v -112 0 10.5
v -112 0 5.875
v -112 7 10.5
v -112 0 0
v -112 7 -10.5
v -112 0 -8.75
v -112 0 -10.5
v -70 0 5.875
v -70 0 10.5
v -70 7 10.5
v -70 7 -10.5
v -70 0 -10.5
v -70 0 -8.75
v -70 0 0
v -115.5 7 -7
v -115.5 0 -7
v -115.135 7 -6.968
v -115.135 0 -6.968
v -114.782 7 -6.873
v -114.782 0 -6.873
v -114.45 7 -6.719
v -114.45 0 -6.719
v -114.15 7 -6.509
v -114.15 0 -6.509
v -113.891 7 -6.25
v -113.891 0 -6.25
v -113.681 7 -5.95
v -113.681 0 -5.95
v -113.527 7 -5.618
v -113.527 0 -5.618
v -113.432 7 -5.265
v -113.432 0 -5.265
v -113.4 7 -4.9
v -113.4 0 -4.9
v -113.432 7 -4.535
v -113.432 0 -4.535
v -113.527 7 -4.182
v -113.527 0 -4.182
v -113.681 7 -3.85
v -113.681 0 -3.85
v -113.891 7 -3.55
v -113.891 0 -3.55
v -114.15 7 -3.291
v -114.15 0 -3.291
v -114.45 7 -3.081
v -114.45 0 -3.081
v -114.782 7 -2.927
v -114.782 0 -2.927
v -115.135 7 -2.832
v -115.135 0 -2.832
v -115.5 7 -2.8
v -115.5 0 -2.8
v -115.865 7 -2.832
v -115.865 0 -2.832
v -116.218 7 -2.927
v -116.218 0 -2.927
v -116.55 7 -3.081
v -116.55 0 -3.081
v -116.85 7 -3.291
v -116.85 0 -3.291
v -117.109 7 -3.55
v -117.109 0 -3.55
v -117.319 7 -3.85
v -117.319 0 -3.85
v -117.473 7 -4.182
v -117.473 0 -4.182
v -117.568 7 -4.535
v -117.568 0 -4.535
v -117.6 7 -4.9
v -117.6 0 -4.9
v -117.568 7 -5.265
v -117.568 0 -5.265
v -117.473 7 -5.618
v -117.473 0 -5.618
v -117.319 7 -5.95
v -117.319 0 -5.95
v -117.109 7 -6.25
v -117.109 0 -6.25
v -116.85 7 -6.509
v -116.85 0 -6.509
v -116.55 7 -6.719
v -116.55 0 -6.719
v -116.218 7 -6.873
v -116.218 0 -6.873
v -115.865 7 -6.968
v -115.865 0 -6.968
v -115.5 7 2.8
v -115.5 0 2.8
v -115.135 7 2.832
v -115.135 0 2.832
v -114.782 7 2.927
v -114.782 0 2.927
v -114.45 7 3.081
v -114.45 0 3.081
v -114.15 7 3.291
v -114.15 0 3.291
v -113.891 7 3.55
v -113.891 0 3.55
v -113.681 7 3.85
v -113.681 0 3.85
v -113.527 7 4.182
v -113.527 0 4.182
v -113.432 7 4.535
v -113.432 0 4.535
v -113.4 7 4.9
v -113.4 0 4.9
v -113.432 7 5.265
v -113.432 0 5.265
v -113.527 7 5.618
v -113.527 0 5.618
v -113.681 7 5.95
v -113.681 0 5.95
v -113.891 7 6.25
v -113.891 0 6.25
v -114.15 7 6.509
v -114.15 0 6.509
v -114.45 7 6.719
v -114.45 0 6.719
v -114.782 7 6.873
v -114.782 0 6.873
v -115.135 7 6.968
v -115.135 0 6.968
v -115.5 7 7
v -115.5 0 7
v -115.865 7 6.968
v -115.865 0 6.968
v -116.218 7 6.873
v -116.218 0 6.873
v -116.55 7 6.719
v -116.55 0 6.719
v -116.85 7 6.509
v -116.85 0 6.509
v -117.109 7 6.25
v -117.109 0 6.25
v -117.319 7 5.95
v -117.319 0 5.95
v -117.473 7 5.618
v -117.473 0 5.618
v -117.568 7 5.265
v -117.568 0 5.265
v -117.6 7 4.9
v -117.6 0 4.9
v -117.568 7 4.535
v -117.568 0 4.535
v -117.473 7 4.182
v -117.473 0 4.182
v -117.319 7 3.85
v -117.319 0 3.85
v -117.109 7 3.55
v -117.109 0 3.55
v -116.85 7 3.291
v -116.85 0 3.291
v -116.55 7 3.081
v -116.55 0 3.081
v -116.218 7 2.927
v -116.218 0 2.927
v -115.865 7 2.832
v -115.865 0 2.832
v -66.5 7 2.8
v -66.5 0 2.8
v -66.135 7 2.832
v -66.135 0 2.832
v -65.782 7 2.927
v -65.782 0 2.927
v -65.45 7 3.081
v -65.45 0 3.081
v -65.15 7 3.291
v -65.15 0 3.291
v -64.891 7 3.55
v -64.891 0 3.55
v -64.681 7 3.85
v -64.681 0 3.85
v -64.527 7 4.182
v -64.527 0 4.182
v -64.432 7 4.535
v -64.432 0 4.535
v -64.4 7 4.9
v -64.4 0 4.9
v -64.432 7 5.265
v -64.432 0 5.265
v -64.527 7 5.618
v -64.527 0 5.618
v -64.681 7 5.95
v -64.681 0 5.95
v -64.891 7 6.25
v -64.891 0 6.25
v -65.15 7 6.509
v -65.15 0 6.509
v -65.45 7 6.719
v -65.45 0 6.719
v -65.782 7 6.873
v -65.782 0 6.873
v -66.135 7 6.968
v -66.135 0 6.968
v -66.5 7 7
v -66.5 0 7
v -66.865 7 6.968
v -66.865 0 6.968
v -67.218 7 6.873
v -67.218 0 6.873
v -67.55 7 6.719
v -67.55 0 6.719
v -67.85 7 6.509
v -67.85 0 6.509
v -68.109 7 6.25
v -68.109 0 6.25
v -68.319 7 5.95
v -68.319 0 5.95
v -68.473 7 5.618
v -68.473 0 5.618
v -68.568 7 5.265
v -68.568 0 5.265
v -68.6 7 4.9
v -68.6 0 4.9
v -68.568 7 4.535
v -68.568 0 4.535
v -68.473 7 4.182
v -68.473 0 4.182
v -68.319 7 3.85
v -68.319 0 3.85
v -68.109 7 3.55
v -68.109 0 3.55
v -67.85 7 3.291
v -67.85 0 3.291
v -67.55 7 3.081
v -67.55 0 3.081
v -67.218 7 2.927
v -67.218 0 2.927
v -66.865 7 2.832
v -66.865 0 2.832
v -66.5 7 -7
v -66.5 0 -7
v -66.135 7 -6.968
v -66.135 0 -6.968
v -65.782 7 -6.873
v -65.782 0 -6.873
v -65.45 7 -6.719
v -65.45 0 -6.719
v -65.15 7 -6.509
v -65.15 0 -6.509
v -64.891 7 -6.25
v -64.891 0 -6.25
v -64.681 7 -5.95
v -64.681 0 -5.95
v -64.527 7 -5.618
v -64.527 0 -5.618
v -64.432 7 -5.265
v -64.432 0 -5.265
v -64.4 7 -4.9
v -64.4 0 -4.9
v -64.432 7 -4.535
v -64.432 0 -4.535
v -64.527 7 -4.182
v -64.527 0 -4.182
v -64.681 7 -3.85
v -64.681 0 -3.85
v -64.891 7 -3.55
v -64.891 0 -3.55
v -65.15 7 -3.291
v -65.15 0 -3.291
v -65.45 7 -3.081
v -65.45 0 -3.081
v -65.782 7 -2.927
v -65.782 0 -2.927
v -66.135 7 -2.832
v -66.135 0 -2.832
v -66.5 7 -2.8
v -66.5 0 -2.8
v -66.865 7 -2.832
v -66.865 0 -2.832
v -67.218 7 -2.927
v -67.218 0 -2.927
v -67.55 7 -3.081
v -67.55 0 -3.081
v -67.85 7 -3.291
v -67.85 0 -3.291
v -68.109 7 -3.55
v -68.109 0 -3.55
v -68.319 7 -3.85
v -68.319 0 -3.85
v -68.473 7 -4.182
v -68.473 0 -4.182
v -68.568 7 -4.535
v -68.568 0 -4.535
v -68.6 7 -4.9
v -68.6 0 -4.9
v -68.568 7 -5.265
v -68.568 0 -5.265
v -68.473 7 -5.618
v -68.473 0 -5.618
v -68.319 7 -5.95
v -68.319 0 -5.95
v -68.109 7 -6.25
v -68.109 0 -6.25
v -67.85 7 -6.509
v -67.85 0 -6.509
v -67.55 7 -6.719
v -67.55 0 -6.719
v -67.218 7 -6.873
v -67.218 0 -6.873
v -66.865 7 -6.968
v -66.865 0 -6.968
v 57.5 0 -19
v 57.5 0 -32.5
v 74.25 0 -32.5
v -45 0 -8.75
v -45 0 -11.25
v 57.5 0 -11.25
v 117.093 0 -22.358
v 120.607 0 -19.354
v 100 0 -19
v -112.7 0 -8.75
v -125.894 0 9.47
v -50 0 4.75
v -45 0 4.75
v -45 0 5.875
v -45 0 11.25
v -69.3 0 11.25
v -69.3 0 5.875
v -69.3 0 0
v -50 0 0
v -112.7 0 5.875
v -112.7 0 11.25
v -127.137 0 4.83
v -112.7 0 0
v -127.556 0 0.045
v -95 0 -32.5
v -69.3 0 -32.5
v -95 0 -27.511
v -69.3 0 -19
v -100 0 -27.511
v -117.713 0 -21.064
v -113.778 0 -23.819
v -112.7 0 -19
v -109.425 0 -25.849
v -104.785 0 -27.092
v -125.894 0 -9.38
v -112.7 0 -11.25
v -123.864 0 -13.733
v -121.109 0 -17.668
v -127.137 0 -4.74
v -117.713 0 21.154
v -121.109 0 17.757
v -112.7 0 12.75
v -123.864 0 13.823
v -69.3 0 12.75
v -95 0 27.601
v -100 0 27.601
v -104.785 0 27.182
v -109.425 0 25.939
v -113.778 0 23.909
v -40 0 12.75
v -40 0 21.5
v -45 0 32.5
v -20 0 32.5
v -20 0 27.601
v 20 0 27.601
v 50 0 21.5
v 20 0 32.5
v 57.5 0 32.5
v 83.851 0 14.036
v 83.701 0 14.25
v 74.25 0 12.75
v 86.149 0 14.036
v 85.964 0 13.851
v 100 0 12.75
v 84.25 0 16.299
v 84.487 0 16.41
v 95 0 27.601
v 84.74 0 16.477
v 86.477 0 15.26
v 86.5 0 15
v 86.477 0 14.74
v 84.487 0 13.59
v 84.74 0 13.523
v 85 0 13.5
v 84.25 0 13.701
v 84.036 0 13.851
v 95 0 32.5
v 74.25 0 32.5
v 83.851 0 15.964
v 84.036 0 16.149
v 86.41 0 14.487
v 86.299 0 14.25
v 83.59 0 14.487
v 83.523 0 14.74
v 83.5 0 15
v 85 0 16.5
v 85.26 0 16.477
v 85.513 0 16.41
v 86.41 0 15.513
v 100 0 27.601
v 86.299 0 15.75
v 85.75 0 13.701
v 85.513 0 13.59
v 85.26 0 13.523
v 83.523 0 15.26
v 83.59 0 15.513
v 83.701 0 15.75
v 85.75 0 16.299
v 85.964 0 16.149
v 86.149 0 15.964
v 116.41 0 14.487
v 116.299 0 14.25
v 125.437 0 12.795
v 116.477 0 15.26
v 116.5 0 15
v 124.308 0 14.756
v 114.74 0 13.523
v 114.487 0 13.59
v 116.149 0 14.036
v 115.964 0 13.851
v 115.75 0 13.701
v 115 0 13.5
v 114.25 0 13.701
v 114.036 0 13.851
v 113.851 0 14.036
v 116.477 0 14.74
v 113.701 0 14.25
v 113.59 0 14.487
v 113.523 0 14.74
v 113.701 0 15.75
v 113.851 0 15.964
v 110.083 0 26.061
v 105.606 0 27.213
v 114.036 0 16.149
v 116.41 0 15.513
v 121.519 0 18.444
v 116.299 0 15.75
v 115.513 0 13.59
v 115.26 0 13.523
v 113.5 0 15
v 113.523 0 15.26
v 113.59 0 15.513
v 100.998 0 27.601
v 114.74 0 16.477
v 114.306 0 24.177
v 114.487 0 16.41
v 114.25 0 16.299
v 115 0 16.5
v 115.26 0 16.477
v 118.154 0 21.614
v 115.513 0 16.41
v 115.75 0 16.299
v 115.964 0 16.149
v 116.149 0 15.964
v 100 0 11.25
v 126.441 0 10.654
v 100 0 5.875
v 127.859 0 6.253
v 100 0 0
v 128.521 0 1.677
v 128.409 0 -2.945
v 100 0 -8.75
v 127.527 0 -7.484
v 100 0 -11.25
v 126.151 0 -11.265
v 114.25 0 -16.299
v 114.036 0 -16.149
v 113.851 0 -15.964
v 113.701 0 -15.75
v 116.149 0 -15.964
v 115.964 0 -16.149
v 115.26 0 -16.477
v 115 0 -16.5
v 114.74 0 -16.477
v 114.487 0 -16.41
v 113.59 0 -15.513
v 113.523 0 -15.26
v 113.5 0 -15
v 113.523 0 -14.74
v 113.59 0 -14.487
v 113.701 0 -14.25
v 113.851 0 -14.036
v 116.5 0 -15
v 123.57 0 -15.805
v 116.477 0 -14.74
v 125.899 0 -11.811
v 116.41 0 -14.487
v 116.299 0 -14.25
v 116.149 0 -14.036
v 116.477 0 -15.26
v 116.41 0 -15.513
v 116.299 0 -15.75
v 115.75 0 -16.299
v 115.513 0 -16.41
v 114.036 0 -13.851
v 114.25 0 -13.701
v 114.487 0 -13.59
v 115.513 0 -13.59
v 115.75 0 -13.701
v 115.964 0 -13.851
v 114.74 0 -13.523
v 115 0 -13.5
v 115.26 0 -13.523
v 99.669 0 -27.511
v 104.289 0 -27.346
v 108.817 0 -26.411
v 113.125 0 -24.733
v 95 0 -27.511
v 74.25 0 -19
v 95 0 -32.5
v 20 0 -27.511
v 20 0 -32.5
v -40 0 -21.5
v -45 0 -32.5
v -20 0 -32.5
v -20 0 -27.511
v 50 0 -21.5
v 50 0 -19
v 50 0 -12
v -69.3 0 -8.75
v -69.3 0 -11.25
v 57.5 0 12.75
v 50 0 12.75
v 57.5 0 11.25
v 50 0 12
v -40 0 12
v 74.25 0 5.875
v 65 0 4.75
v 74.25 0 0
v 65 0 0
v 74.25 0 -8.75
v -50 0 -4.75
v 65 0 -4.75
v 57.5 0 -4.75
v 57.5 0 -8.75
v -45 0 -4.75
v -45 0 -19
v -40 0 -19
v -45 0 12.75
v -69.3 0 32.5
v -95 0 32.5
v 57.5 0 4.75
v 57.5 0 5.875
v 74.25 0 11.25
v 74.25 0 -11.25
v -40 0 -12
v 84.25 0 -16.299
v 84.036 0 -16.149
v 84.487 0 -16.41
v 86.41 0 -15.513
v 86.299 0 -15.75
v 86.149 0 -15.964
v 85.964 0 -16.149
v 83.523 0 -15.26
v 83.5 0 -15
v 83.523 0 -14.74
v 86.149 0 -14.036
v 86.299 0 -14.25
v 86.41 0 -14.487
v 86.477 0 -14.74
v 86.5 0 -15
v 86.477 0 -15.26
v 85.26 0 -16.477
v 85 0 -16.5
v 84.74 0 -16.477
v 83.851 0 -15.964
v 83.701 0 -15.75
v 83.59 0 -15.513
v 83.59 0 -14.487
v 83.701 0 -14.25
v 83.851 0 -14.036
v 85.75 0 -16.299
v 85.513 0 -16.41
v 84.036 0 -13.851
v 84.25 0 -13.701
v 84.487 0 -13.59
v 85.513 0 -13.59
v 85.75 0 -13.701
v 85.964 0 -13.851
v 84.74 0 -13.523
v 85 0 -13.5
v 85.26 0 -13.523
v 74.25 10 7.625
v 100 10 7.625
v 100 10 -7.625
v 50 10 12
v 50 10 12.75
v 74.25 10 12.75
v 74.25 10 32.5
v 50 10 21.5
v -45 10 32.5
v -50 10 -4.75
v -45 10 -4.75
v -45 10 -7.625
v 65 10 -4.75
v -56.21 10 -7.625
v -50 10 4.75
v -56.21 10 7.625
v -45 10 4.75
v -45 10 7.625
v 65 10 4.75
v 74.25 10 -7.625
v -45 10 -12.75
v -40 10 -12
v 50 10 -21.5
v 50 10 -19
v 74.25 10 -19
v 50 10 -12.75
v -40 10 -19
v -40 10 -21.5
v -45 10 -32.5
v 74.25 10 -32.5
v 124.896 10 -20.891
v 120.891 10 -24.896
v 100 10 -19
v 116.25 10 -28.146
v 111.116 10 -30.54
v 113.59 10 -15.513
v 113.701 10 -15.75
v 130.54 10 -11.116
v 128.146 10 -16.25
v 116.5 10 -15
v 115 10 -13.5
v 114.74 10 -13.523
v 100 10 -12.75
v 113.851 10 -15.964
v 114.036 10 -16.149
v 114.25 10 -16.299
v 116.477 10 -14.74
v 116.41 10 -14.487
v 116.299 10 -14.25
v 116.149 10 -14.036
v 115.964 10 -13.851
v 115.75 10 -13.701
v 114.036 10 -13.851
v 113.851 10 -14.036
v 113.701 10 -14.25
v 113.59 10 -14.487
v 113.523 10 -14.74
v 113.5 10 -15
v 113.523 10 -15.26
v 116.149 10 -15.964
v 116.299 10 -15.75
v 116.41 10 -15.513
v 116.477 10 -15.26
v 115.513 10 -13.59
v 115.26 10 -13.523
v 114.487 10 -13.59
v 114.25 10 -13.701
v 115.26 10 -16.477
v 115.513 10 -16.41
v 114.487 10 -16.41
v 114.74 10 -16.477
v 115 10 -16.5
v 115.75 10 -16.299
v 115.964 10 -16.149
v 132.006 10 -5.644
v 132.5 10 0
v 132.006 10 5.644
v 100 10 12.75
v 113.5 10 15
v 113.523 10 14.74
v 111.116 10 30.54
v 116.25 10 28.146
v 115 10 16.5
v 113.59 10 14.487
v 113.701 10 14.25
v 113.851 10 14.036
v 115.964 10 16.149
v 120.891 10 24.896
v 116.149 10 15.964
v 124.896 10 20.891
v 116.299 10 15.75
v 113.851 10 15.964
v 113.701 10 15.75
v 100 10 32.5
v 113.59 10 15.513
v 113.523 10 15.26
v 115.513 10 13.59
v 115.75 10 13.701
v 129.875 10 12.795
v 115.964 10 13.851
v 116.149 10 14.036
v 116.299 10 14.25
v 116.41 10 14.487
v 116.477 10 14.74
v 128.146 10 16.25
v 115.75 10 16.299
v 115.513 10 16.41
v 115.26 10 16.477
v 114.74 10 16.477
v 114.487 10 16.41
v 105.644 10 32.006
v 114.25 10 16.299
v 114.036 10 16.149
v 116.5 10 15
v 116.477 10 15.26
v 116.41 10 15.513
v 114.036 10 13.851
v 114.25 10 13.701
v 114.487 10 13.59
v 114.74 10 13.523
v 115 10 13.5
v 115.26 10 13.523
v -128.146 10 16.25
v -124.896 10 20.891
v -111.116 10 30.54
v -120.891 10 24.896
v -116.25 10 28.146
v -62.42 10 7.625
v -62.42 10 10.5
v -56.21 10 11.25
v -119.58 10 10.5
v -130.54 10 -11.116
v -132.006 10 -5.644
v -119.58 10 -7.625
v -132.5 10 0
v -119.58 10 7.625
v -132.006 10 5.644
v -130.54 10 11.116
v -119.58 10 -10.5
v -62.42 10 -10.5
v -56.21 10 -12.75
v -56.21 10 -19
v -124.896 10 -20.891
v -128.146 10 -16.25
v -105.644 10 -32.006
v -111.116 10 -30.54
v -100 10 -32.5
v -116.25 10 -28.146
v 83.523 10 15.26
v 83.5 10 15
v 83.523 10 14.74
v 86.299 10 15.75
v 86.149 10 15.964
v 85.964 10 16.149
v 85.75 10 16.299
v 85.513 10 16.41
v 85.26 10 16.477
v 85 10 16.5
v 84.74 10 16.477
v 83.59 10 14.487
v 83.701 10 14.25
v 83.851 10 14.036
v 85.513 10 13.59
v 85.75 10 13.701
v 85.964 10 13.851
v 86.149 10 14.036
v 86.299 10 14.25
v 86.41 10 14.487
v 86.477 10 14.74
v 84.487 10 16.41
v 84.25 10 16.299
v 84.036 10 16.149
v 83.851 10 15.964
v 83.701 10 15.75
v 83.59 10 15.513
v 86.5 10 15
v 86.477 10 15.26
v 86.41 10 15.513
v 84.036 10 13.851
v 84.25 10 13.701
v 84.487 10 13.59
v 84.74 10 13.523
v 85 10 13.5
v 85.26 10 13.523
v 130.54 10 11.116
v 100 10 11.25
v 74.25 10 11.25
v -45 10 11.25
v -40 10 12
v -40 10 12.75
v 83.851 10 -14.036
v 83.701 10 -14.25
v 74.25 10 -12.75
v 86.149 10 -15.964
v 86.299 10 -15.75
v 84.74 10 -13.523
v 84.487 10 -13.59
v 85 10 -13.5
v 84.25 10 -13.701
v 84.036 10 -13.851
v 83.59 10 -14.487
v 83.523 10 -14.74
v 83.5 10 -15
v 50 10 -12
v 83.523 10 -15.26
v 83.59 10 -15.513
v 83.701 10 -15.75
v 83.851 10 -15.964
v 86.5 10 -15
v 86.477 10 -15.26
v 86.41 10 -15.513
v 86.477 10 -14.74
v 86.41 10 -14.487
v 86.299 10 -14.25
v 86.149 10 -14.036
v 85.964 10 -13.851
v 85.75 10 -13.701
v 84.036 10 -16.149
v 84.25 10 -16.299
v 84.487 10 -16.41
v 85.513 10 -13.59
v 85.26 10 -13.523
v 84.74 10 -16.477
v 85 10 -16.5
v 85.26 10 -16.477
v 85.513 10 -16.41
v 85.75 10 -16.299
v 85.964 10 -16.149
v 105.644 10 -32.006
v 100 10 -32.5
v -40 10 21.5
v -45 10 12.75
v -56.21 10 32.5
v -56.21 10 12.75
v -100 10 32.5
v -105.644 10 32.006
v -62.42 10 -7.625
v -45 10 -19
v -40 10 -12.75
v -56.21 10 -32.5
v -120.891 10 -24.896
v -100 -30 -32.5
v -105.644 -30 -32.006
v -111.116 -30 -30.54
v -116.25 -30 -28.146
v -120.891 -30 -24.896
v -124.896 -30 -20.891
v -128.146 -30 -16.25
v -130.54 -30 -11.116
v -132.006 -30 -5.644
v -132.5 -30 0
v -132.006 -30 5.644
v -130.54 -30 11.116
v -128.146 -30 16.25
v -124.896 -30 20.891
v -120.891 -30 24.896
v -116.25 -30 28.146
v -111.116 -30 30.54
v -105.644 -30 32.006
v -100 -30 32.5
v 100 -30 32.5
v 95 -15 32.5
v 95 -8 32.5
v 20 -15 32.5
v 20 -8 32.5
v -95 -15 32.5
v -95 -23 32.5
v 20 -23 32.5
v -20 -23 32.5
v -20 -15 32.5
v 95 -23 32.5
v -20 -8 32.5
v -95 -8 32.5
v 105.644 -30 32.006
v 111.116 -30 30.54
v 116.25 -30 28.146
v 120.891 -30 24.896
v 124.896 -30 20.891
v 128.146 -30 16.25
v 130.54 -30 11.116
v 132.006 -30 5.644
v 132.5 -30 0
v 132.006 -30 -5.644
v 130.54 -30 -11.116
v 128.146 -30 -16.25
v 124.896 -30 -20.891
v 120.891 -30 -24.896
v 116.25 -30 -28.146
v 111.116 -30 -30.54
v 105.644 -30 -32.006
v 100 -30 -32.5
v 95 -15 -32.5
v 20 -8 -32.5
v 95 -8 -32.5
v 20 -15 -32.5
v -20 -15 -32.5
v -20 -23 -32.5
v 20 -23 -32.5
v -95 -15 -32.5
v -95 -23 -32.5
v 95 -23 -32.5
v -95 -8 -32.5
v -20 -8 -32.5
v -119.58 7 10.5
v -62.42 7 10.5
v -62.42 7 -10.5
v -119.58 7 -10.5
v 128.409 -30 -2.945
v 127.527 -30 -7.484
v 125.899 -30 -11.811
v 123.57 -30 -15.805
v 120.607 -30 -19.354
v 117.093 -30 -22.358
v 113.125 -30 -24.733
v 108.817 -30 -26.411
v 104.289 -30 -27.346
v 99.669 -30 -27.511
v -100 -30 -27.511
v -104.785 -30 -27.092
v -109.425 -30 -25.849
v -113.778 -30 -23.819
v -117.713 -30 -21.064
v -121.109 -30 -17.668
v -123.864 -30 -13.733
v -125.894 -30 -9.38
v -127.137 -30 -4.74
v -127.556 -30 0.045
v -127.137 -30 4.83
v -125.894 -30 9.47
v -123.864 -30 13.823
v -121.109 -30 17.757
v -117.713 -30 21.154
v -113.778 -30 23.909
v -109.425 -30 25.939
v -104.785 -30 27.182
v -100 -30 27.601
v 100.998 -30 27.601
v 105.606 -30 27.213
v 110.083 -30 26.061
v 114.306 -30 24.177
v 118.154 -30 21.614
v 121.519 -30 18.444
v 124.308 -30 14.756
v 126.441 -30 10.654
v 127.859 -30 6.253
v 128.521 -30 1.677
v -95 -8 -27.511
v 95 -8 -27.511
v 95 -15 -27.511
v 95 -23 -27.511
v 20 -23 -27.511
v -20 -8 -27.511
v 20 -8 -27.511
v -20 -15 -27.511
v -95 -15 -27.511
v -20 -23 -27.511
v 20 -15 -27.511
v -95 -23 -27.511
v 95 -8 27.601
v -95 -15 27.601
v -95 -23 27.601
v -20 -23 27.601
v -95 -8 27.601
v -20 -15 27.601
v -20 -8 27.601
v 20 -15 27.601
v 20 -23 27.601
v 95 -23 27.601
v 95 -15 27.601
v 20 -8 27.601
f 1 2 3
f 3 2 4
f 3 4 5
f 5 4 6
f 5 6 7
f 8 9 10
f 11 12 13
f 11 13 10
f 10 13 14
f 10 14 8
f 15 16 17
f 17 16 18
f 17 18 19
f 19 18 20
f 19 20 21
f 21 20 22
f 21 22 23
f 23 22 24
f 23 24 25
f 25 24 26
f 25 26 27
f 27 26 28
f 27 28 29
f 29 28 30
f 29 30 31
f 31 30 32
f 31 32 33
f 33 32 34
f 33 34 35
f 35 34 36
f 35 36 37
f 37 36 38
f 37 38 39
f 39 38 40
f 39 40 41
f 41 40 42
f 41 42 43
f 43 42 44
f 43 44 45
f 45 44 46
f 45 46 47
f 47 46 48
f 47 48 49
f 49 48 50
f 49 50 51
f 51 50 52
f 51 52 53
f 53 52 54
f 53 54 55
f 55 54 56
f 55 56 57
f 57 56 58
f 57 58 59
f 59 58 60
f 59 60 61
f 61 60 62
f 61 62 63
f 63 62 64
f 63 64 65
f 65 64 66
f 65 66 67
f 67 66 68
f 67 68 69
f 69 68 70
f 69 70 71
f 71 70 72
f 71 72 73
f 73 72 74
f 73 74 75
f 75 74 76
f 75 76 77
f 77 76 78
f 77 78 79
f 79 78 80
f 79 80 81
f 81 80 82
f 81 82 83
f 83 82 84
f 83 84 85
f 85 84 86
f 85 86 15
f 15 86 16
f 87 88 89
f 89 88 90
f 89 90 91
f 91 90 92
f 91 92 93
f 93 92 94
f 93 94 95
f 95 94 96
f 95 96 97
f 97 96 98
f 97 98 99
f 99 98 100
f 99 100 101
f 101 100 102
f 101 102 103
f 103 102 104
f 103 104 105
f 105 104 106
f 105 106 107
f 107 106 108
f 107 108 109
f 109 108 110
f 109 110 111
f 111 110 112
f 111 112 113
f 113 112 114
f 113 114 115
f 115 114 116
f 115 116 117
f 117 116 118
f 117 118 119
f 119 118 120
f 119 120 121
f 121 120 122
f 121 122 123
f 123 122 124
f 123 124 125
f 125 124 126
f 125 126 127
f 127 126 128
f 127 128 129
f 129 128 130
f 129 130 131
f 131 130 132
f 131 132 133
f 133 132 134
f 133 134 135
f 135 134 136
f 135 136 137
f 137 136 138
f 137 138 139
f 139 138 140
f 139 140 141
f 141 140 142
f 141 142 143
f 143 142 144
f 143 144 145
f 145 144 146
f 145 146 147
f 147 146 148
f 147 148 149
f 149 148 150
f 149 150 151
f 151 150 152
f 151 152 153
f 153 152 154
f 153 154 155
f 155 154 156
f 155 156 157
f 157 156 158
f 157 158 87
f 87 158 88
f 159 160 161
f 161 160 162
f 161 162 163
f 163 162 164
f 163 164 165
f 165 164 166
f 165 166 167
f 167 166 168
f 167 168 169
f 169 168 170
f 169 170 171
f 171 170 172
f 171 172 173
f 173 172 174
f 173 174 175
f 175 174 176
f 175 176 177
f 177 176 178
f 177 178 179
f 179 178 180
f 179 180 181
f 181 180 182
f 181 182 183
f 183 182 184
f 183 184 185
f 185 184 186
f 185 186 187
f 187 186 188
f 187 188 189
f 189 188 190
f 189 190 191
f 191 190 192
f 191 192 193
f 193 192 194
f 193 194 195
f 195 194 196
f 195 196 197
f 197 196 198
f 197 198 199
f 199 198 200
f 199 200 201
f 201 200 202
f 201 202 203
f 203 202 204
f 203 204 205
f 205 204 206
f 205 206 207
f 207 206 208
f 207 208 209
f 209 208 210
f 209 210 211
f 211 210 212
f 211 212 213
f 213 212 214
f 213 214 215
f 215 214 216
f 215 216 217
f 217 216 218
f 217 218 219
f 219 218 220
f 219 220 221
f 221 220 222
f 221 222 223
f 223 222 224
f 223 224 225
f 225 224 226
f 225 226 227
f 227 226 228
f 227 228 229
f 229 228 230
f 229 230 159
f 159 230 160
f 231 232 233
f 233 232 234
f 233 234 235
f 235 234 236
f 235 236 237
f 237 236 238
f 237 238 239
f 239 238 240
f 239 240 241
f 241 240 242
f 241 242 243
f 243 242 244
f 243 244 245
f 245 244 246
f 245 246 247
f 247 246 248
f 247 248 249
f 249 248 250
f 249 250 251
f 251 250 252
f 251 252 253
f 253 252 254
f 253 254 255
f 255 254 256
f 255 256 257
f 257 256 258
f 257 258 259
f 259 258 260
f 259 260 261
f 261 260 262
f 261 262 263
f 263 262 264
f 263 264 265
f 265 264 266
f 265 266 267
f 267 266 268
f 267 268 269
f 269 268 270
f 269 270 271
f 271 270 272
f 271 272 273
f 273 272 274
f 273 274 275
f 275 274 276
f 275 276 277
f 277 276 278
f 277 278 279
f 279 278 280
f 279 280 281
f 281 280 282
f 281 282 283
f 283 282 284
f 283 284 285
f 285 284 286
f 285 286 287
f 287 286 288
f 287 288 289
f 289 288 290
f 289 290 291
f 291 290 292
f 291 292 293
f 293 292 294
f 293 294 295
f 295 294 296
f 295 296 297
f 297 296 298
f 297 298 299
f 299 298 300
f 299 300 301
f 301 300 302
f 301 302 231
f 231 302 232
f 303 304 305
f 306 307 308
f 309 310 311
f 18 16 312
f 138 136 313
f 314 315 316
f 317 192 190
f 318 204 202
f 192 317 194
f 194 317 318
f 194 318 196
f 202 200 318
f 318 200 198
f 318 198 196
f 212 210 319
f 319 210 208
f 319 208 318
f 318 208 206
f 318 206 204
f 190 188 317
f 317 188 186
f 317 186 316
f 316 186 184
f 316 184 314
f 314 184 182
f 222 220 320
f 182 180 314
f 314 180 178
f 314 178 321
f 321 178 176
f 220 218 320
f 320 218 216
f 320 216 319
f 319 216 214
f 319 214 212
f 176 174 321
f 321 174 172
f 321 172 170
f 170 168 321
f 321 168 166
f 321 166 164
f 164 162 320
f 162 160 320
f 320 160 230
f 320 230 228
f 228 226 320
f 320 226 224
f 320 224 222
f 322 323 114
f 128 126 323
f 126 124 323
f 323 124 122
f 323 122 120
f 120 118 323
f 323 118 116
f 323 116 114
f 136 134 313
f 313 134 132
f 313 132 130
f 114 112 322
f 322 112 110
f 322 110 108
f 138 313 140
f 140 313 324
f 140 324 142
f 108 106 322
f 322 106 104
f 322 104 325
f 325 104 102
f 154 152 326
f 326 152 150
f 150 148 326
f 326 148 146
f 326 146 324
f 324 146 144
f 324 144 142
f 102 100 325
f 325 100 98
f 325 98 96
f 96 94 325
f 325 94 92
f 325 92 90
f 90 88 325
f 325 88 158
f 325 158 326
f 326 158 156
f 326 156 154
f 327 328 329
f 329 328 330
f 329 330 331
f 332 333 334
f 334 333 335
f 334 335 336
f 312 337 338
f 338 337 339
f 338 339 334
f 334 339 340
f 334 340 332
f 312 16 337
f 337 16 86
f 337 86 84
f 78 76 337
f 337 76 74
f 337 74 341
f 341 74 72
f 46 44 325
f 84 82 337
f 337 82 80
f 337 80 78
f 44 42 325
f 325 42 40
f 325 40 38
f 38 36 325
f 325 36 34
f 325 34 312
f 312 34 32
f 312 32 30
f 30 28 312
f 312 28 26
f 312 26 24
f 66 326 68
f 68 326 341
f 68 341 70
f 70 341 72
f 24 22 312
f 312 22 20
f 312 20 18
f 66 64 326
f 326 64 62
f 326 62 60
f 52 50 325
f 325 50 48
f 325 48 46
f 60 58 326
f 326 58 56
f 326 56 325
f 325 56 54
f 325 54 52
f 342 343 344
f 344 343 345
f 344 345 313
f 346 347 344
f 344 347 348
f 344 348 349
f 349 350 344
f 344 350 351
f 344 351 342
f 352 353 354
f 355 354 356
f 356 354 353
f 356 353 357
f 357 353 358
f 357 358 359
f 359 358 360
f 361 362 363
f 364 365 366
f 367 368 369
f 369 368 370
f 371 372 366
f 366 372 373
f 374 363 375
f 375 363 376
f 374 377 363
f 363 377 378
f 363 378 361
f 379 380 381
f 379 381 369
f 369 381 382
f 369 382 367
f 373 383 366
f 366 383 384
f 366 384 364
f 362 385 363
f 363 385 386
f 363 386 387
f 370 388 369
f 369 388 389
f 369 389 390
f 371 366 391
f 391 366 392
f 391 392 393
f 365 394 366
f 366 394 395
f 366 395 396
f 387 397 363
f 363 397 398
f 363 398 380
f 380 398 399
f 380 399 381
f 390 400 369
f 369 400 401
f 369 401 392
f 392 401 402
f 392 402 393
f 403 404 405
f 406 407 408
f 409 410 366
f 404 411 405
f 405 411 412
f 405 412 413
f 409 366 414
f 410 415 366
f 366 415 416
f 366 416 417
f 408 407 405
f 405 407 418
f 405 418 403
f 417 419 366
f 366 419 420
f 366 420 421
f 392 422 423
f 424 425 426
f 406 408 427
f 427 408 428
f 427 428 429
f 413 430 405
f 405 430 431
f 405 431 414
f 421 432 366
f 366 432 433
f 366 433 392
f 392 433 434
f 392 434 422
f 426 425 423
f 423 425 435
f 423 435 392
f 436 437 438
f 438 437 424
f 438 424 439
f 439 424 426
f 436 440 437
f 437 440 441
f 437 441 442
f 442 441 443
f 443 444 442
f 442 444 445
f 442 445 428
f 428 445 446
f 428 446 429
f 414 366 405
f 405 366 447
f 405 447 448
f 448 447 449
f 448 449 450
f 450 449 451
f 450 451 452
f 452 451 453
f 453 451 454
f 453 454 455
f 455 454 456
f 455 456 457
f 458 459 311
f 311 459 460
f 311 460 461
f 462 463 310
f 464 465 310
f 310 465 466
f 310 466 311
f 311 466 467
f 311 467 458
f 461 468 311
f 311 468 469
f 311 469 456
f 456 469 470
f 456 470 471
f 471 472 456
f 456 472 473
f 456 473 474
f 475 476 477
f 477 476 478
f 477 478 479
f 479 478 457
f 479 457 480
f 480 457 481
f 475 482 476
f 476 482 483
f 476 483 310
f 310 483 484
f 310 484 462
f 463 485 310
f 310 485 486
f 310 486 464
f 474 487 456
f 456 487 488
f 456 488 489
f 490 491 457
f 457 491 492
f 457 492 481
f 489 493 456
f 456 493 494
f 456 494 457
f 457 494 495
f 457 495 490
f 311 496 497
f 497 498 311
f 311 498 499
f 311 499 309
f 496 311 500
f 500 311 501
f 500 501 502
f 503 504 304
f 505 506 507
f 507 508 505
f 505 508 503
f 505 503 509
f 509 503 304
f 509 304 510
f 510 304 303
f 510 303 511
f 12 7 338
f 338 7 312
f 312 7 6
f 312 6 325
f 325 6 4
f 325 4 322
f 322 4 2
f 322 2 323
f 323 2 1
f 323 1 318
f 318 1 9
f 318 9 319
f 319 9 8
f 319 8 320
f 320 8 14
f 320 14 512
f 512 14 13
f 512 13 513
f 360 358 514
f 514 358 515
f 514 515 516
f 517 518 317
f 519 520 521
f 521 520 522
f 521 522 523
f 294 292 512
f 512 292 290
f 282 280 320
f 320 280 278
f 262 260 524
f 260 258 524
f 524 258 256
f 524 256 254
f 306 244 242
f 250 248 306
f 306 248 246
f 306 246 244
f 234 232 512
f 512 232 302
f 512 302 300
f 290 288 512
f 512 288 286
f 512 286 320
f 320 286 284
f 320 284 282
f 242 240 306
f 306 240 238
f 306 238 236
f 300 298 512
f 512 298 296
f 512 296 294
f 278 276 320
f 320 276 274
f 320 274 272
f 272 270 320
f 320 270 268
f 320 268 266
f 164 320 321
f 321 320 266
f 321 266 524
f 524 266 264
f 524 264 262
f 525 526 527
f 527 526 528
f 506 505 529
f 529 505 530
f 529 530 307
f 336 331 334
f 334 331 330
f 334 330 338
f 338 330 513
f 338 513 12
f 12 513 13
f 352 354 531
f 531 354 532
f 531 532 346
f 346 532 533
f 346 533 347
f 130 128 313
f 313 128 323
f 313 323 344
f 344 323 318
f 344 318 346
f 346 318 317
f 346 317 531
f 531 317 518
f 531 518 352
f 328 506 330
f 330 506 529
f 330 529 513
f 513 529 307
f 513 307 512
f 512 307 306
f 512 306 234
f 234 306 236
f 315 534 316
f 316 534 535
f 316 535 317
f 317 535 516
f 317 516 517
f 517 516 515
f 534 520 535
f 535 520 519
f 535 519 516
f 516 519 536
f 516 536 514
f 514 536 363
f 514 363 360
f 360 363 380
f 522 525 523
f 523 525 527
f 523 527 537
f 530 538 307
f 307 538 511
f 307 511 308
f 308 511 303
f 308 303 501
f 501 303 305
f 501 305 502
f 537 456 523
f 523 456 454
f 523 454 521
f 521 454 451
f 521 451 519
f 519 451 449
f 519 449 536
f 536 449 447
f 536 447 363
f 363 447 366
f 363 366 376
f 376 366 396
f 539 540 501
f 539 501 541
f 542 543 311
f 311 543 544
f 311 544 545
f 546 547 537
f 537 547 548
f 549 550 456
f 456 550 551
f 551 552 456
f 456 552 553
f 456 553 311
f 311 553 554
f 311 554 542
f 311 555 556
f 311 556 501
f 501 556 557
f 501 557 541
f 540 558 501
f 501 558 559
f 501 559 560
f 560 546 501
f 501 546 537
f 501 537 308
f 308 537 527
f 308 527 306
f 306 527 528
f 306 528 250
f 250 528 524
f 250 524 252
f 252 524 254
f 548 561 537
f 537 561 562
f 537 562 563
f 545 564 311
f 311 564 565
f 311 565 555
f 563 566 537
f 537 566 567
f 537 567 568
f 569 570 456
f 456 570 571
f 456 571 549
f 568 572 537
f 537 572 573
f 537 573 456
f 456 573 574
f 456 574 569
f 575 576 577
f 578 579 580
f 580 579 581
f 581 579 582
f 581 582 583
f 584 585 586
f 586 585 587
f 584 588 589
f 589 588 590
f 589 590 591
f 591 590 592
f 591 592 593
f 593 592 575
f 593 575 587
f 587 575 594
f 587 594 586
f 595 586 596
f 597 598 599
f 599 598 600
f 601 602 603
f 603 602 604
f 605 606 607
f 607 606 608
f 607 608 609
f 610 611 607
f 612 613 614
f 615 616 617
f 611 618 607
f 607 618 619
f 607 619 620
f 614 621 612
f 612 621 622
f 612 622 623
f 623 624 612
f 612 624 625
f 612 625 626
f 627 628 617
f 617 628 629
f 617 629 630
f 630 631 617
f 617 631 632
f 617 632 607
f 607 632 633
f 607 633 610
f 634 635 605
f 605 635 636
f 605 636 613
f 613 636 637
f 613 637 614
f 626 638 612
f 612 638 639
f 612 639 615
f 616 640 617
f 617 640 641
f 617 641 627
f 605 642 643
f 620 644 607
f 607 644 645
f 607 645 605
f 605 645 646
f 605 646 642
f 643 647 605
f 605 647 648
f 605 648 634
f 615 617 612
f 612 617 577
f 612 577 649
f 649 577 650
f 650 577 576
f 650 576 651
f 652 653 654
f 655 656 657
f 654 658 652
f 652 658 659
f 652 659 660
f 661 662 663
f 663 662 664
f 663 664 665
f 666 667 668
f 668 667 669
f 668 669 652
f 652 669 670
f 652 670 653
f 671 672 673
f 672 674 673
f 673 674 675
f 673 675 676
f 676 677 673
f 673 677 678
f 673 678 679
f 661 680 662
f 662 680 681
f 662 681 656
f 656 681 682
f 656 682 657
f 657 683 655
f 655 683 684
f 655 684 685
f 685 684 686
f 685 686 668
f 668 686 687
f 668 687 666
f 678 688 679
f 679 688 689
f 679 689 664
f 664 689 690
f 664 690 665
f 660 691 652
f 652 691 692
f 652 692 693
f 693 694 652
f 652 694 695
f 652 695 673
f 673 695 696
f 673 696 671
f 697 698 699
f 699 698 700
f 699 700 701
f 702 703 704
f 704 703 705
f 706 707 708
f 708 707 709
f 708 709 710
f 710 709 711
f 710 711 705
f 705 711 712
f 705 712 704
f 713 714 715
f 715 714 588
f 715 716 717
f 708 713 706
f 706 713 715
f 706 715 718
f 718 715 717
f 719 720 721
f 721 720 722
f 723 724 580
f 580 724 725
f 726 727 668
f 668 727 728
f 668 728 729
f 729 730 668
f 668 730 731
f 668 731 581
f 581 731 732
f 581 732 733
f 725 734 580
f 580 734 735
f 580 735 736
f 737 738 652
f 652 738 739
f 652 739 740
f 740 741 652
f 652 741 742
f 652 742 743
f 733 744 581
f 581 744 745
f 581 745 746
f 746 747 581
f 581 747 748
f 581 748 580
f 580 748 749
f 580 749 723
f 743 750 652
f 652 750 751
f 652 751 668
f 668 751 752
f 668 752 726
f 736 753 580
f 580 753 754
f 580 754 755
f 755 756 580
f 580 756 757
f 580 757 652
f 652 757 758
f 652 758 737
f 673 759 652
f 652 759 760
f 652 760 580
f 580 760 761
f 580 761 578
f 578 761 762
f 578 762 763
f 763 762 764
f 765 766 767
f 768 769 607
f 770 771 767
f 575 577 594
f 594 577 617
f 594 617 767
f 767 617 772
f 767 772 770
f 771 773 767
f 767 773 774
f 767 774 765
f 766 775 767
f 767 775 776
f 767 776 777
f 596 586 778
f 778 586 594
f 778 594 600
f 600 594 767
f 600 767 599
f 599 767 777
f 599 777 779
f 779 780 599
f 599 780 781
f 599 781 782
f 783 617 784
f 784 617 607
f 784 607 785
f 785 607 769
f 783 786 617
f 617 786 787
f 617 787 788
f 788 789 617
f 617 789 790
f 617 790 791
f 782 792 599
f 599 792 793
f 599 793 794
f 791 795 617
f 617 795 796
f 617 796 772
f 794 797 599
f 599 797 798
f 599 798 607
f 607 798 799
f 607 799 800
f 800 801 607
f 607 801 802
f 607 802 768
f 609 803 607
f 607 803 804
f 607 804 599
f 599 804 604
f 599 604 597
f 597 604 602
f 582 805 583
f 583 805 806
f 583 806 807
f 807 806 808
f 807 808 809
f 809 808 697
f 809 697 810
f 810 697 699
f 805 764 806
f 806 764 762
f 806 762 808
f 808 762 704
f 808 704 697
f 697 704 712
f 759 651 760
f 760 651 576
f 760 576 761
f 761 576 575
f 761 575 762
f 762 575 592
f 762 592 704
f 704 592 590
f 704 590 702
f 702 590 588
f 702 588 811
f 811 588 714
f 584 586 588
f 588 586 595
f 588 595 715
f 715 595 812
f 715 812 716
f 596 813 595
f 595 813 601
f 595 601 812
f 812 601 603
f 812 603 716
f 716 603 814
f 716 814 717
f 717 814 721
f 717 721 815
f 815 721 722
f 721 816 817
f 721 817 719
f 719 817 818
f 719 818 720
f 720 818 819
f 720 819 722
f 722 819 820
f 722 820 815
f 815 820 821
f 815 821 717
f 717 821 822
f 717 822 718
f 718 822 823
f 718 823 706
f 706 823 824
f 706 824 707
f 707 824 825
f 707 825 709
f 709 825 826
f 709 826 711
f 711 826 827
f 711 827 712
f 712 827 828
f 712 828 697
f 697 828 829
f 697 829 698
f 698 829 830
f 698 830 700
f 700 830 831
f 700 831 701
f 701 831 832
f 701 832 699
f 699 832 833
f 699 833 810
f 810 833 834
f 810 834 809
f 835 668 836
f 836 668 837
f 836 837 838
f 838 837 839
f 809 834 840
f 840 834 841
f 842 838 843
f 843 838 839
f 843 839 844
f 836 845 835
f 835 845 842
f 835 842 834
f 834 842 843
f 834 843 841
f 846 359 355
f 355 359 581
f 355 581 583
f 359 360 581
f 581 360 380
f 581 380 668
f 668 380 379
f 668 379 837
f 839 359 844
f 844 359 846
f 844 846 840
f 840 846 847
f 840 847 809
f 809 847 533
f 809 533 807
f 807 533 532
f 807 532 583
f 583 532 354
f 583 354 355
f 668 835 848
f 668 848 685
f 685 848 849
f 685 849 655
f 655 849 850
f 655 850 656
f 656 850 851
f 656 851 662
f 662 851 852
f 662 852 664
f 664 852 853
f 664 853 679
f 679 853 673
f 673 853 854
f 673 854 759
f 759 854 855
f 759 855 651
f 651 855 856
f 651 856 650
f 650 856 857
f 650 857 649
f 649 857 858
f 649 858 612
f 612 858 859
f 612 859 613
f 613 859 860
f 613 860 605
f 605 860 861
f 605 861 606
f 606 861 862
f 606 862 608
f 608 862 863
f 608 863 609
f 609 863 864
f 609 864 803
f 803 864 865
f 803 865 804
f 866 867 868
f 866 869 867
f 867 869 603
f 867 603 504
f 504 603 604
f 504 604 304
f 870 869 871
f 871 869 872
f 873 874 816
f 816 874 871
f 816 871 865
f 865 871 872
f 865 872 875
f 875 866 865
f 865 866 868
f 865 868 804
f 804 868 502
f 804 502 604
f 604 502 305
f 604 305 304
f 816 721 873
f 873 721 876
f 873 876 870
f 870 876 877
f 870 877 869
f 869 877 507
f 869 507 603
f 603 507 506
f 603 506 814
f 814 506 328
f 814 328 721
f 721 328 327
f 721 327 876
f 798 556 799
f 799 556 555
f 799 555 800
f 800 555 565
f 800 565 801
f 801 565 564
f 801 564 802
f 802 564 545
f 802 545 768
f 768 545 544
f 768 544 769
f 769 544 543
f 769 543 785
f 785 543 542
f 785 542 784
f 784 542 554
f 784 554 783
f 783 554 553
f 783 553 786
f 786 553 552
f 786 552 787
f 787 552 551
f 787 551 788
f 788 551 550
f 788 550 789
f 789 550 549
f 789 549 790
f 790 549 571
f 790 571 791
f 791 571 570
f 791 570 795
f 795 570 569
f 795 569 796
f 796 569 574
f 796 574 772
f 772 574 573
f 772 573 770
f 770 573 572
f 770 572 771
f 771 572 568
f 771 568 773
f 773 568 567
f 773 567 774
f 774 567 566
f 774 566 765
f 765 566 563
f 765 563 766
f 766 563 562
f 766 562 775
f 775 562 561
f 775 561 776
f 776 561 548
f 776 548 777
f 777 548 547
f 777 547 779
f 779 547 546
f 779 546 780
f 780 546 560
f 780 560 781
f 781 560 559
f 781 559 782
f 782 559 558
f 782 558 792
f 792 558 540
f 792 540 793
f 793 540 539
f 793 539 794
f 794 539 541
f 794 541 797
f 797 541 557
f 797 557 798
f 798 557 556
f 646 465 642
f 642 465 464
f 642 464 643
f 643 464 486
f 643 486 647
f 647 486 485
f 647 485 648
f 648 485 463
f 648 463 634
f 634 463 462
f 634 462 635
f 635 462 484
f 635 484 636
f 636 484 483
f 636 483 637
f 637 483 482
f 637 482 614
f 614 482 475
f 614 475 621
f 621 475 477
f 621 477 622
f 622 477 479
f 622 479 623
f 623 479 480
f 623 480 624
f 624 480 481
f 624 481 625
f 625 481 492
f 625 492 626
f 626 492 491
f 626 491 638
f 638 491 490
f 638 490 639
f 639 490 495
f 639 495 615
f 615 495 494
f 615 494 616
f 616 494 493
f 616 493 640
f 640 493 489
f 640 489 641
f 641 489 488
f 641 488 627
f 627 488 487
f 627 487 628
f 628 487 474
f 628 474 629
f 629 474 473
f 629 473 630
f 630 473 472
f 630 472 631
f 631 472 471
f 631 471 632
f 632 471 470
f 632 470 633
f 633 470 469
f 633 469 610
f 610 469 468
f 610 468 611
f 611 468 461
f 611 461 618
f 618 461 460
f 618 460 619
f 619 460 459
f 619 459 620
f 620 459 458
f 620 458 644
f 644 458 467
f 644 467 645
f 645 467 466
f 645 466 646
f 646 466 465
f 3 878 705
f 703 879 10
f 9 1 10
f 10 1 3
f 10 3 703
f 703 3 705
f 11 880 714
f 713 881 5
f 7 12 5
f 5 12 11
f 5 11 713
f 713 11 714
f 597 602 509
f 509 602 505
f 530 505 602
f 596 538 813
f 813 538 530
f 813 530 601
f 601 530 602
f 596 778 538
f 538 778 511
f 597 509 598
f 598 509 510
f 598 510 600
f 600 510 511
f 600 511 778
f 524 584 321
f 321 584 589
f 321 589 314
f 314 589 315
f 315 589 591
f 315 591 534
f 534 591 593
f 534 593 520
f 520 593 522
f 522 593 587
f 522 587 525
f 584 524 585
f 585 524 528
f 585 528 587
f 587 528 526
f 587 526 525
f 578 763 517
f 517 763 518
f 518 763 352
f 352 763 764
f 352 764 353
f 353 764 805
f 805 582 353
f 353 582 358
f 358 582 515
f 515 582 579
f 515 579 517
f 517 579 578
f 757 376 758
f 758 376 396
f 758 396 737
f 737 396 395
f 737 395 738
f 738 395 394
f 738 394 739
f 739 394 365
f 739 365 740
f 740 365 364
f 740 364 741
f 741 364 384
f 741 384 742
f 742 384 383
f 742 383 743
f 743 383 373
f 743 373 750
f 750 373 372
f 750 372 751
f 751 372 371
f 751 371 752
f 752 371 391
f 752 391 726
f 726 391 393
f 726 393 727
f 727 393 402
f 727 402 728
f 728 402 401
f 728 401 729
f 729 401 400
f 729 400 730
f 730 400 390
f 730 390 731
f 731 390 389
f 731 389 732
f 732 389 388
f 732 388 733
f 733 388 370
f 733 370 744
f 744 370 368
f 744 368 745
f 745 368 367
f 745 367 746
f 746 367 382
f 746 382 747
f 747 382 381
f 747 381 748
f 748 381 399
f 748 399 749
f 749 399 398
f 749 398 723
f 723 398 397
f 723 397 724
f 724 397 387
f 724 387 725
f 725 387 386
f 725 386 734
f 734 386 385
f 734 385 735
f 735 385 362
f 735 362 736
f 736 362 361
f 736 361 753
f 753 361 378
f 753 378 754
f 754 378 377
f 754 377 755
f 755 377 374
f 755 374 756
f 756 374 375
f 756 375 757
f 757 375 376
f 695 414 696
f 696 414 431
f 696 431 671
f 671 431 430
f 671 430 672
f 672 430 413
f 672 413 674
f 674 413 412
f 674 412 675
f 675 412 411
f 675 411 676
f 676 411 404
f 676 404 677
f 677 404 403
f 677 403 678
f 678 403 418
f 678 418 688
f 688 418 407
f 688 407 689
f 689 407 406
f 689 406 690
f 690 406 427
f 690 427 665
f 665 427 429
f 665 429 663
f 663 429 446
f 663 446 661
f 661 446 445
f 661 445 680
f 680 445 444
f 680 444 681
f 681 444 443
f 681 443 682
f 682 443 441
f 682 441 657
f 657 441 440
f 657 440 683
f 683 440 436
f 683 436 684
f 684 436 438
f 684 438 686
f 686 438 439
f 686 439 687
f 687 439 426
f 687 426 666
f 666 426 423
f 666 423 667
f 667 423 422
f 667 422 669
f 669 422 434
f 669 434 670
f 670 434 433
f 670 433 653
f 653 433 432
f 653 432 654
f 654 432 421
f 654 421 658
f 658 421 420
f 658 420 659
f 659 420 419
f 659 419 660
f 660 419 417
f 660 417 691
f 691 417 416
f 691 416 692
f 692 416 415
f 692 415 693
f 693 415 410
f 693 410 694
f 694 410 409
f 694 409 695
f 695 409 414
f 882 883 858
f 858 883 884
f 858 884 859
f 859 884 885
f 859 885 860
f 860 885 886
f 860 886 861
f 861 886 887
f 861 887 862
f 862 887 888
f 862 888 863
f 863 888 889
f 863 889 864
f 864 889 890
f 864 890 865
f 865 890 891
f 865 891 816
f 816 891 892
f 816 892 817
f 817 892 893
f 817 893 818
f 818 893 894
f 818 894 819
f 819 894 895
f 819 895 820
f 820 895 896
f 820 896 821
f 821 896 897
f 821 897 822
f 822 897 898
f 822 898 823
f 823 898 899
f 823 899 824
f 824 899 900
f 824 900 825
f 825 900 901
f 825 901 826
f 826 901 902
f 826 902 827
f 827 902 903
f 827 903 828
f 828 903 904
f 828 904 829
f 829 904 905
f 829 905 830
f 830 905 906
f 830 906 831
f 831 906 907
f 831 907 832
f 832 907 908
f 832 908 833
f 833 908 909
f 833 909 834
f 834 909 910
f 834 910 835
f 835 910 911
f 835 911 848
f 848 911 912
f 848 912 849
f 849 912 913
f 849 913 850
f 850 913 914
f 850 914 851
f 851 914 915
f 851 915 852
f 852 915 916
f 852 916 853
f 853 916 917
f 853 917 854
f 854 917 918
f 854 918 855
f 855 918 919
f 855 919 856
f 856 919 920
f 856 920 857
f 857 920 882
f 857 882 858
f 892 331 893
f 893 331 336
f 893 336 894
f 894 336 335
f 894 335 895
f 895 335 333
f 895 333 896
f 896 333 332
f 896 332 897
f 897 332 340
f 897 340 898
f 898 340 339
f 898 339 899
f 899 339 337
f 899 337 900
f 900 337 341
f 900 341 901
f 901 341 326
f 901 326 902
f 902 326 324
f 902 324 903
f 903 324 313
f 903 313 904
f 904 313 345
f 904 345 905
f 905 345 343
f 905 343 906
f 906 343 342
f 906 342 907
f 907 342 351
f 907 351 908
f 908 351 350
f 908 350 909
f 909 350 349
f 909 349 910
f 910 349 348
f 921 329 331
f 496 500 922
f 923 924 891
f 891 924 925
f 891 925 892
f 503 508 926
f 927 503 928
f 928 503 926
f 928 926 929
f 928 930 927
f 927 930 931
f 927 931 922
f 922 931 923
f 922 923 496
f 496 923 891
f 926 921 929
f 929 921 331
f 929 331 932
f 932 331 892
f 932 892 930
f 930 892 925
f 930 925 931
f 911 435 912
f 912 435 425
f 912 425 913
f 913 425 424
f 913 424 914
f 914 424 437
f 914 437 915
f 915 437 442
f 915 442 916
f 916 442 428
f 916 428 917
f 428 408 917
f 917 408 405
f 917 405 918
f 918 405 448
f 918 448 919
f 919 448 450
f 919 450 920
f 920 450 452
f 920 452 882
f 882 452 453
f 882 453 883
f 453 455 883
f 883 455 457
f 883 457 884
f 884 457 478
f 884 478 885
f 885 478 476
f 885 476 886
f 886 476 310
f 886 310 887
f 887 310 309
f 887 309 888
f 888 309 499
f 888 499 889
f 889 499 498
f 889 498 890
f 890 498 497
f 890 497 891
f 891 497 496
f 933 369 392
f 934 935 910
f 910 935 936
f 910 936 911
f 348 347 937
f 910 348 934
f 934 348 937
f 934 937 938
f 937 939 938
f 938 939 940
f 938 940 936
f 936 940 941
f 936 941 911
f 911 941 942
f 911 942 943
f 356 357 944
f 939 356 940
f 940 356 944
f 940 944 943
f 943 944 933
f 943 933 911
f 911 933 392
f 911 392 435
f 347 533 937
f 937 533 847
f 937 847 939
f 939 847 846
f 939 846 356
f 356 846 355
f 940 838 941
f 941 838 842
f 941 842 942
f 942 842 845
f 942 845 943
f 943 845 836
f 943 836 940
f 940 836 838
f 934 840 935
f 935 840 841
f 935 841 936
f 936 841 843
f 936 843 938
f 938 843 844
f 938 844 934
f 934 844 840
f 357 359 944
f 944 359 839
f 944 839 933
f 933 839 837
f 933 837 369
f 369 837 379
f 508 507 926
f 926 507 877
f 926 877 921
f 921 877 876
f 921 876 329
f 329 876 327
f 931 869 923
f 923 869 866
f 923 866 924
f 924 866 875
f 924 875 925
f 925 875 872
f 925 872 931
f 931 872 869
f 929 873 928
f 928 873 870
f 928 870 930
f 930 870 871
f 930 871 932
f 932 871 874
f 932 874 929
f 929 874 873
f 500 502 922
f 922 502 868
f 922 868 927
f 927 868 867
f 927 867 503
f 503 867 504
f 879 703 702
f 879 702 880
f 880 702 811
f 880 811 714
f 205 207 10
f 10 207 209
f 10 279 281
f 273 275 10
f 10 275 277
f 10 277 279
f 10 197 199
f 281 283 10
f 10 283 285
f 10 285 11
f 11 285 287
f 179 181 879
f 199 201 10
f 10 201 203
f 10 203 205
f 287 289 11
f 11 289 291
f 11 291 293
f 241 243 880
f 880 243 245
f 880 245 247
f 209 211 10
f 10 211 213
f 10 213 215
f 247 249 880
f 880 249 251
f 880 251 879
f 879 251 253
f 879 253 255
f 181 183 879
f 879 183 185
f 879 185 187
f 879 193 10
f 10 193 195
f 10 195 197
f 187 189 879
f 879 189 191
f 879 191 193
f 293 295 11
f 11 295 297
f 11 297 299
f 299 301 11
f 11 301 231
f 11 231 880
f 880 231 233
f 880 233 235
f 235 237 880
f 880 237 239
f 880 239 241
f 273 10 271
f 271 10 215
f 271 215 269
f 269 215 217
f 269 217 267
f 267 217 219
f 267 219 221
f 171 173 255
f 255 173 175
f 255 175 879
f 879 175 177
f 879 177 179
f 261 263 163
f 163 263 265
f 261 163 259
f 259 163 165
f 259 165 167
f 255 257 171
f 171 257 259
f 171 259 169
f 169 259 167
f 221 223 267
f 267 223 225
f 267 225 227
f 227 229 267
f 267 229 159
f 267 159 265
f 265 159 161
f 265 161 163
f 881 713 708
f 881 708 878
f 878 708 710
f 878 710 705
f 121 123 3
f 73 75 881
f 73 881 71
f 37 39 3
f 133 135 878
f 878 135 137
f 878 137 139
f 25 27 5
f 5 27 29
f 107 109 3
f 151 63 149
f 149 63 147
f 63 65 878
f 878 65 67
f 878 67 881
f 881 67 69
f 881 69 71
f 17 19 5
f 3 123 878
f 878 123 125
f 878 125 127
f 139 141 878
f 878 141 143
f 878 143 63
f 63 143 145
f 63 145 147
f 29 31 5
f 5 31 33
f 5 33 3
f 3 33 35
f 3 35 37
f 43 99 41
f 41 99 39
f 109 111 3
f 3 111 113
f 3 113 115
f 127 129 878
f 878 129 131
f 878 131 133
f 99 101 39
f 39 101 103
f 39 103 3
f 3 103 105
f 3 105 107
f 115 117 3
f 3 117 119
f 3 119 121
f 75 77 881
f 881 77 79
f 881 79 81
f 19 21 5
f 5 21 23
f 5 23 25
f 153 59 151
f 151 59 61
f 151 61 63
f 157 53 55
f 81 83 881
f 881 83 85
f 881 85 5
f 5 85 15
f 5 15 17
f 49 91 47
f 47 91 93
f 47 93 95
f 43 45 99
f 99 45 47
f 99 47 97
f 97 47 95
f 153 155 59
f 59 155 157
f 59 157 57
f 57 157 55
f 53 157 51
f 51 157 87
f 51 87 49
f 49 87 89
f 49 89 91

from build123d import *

# Parameters (mm, degrees)
SKETCH1_R           = 2.1
SKETCH1_R_2         = 1.5
SKETCH1_W           = 42
SKETCH1_H           = 21
BOSS_EXTRUDE1_DEPTH = 10
BOSS_EXTRUDE2_START = -30
BOSS_EXTRUDE2_DEPTH = 30
SKETCH3_W           = 75
SKETCH3_H           = 8
CUT_EXTRUDE1_DEPTH  = 45
SKETCH4_W           = 7.58
SKETCH4_H           = 21
CUT_EXTRUDE2_DEPTH  = 3


with BuildPart() as part:
    # Sketch1 → Boss-Extrude1 (new body)
    with BuildSketch(Plane(origin=(0, 0, 0), x_dir=(1, 0, 0), z_dir=(0, 1, 0))):
        with BuildLine():
            Line((-100, 32.5), (100, 32.5))
            ThreePointArc((100, 32.5), (132.5, 0), (100, -32.5))
            Line((100, -32.5), (-100, -32.5))
            ThreePointArc((-100, -32.5), (-132.5, 0), (-100, 32.5))
        make_face()
        with Locations(Location((-115.5, 4.9, 0), (0, 0, 270))):
            Circle(SKETCH1_R, mode=Mode.SUBTRACT)
        with Locations(Location((-115.5, -4.9, 0), (0, 0, 270))):
            Circle(SKETCH1_R, mode=Mode.SUBTRACT)
        with Locations(Location((-66.5, -4.9, 0), (0, 0, 270))):
            Circle(SKETCH1_R, mode=Mode.SUBTRACT)
        with Locations(Location((-66.5, 4.9, 0), (0, 0, 270))):
            Circle(SKETCH1_R, mode=Mode.SUBTRACT)
        with Locations(Location((85, 15, 0), (0, 0, 270))):
            Circle(SKETCH1_R_2, mode=Mode.SUBTRACT)
        with Locations(Location((115, 15, 0), (0, 0, 90))):
            Circle(SKETCH1_R_2, mode=Mode.SUBTRACT)
        with Locations(Location((85, -15, 0), (0, 0, 90))):
            Circle(SKETCH1_R_2, mode=Mode.SUBTRACT)
        with Locations(Location((115, -15, 0), (0, 0, 270))):
            Circle(SKETCH1_R_2, mode=Mode.SUBTRACT)
        with Locations((-91, 0)):
            Rectangle(SKETCH1_W, SKETCH1_H, mode=Mode.SUBTRACT)
        Polygon((0, 21.5), (-40, 21.5), (-40, 12), (0, 12), (50, 12), (50, 21.5), align=None, mode=Mode.SUBTRACT)
        Polygon((-50, 4.75), (0, 4.75), (65, 4.75), (65, -4.75), (0, -4.75), (-50, -4.75), align=None, mode=Mode.SUBTRACT)
        Polygon((0, -12), (-40, -12), (-40, -21.5), (0, -21.5), (50, -21.5), (50, -12), align=None, mode=Mode.SUBTRACT)
    extrude(amount=BOSS_EXTRUDE1_DEPTH)

    # Sketch2 → Boss-Extrude2 (add)
    with BuildSketch(Plane(origin=(0, 0, 0), x_dir=(1, 0, 0), z_dir=(0, 1, 0)).offset(BOSS_EXTRUDE2_START)):
        with BuildLine():
            Line((-100, 32.5), (100, 32.5))
            ThreePointArc((100, 32.5), (132.5, 0), (100, -32.5))
            Line((100, -32.5), (-100, -32.5))
            ThreePointArc((-100, -32.5), (-132.5, 0), (-100, 32.5))
        make_face()
        with BuildLine():
            Line((99.668543355, 27.510998447), (-100, 27.510998447))
            ThreePointArc((-100, 27.510998447), (-127.55585262, -0.044854173), (-100, -27.600706793))
            Line((-100, -27.600706793), (100.998461852, -27.600706793))
            ThreePointArc((100.998461852, -27.600706793), (128.562336478, 0.636345006), (99.668543355, 27.510998447))
        make_face(mode=Mode.SUBTRACT)
    extrude(amount=BOSS_EXTRUDE2_DEPTH)

    # Sketch3 → Cut-Extrude1 (cut, symmetric)
    with BuildSketch(Plane.XY):
        with Locations((-57.5, -19)):
            Rectangle(SKETCH3_W, SKETCH3_H)
        with Locations((57.5, -19)):
            Rectangle(SKETCH3_W, SKETCH3_H)
        with Locations((57.5, -4)):
            Rectangle(SKETCH3_W, SKETCH3_H)
        with Locations((-57.5, -4)):
            Rectangle(SKETCH3_W, SKETCH3_H)
    extrude(amount=CUT_EXTRUDE1_DEPTH, both=True, mode=Mode.SUBTRACT)

    # Sketch4 → Cut-Extrude2 (cut)
    with BuildSketch(Plane(origin=(0, 10, 0), x_dir=(1, 0, 0), z_dir=(0, 1, 0))):
        with Locations((-115.79, 0)):
            Rectangle(SKETCH4_W, SKETCH4_H)
        with Locations((-66.21, 0)):
            Rectangle(SKETCH4_W, SKETCH4_H)
    extrude(amount=-CUT_EXTRUDE2_DEPTH, mode=Mode.SUBTRACT)


solid = part.part
